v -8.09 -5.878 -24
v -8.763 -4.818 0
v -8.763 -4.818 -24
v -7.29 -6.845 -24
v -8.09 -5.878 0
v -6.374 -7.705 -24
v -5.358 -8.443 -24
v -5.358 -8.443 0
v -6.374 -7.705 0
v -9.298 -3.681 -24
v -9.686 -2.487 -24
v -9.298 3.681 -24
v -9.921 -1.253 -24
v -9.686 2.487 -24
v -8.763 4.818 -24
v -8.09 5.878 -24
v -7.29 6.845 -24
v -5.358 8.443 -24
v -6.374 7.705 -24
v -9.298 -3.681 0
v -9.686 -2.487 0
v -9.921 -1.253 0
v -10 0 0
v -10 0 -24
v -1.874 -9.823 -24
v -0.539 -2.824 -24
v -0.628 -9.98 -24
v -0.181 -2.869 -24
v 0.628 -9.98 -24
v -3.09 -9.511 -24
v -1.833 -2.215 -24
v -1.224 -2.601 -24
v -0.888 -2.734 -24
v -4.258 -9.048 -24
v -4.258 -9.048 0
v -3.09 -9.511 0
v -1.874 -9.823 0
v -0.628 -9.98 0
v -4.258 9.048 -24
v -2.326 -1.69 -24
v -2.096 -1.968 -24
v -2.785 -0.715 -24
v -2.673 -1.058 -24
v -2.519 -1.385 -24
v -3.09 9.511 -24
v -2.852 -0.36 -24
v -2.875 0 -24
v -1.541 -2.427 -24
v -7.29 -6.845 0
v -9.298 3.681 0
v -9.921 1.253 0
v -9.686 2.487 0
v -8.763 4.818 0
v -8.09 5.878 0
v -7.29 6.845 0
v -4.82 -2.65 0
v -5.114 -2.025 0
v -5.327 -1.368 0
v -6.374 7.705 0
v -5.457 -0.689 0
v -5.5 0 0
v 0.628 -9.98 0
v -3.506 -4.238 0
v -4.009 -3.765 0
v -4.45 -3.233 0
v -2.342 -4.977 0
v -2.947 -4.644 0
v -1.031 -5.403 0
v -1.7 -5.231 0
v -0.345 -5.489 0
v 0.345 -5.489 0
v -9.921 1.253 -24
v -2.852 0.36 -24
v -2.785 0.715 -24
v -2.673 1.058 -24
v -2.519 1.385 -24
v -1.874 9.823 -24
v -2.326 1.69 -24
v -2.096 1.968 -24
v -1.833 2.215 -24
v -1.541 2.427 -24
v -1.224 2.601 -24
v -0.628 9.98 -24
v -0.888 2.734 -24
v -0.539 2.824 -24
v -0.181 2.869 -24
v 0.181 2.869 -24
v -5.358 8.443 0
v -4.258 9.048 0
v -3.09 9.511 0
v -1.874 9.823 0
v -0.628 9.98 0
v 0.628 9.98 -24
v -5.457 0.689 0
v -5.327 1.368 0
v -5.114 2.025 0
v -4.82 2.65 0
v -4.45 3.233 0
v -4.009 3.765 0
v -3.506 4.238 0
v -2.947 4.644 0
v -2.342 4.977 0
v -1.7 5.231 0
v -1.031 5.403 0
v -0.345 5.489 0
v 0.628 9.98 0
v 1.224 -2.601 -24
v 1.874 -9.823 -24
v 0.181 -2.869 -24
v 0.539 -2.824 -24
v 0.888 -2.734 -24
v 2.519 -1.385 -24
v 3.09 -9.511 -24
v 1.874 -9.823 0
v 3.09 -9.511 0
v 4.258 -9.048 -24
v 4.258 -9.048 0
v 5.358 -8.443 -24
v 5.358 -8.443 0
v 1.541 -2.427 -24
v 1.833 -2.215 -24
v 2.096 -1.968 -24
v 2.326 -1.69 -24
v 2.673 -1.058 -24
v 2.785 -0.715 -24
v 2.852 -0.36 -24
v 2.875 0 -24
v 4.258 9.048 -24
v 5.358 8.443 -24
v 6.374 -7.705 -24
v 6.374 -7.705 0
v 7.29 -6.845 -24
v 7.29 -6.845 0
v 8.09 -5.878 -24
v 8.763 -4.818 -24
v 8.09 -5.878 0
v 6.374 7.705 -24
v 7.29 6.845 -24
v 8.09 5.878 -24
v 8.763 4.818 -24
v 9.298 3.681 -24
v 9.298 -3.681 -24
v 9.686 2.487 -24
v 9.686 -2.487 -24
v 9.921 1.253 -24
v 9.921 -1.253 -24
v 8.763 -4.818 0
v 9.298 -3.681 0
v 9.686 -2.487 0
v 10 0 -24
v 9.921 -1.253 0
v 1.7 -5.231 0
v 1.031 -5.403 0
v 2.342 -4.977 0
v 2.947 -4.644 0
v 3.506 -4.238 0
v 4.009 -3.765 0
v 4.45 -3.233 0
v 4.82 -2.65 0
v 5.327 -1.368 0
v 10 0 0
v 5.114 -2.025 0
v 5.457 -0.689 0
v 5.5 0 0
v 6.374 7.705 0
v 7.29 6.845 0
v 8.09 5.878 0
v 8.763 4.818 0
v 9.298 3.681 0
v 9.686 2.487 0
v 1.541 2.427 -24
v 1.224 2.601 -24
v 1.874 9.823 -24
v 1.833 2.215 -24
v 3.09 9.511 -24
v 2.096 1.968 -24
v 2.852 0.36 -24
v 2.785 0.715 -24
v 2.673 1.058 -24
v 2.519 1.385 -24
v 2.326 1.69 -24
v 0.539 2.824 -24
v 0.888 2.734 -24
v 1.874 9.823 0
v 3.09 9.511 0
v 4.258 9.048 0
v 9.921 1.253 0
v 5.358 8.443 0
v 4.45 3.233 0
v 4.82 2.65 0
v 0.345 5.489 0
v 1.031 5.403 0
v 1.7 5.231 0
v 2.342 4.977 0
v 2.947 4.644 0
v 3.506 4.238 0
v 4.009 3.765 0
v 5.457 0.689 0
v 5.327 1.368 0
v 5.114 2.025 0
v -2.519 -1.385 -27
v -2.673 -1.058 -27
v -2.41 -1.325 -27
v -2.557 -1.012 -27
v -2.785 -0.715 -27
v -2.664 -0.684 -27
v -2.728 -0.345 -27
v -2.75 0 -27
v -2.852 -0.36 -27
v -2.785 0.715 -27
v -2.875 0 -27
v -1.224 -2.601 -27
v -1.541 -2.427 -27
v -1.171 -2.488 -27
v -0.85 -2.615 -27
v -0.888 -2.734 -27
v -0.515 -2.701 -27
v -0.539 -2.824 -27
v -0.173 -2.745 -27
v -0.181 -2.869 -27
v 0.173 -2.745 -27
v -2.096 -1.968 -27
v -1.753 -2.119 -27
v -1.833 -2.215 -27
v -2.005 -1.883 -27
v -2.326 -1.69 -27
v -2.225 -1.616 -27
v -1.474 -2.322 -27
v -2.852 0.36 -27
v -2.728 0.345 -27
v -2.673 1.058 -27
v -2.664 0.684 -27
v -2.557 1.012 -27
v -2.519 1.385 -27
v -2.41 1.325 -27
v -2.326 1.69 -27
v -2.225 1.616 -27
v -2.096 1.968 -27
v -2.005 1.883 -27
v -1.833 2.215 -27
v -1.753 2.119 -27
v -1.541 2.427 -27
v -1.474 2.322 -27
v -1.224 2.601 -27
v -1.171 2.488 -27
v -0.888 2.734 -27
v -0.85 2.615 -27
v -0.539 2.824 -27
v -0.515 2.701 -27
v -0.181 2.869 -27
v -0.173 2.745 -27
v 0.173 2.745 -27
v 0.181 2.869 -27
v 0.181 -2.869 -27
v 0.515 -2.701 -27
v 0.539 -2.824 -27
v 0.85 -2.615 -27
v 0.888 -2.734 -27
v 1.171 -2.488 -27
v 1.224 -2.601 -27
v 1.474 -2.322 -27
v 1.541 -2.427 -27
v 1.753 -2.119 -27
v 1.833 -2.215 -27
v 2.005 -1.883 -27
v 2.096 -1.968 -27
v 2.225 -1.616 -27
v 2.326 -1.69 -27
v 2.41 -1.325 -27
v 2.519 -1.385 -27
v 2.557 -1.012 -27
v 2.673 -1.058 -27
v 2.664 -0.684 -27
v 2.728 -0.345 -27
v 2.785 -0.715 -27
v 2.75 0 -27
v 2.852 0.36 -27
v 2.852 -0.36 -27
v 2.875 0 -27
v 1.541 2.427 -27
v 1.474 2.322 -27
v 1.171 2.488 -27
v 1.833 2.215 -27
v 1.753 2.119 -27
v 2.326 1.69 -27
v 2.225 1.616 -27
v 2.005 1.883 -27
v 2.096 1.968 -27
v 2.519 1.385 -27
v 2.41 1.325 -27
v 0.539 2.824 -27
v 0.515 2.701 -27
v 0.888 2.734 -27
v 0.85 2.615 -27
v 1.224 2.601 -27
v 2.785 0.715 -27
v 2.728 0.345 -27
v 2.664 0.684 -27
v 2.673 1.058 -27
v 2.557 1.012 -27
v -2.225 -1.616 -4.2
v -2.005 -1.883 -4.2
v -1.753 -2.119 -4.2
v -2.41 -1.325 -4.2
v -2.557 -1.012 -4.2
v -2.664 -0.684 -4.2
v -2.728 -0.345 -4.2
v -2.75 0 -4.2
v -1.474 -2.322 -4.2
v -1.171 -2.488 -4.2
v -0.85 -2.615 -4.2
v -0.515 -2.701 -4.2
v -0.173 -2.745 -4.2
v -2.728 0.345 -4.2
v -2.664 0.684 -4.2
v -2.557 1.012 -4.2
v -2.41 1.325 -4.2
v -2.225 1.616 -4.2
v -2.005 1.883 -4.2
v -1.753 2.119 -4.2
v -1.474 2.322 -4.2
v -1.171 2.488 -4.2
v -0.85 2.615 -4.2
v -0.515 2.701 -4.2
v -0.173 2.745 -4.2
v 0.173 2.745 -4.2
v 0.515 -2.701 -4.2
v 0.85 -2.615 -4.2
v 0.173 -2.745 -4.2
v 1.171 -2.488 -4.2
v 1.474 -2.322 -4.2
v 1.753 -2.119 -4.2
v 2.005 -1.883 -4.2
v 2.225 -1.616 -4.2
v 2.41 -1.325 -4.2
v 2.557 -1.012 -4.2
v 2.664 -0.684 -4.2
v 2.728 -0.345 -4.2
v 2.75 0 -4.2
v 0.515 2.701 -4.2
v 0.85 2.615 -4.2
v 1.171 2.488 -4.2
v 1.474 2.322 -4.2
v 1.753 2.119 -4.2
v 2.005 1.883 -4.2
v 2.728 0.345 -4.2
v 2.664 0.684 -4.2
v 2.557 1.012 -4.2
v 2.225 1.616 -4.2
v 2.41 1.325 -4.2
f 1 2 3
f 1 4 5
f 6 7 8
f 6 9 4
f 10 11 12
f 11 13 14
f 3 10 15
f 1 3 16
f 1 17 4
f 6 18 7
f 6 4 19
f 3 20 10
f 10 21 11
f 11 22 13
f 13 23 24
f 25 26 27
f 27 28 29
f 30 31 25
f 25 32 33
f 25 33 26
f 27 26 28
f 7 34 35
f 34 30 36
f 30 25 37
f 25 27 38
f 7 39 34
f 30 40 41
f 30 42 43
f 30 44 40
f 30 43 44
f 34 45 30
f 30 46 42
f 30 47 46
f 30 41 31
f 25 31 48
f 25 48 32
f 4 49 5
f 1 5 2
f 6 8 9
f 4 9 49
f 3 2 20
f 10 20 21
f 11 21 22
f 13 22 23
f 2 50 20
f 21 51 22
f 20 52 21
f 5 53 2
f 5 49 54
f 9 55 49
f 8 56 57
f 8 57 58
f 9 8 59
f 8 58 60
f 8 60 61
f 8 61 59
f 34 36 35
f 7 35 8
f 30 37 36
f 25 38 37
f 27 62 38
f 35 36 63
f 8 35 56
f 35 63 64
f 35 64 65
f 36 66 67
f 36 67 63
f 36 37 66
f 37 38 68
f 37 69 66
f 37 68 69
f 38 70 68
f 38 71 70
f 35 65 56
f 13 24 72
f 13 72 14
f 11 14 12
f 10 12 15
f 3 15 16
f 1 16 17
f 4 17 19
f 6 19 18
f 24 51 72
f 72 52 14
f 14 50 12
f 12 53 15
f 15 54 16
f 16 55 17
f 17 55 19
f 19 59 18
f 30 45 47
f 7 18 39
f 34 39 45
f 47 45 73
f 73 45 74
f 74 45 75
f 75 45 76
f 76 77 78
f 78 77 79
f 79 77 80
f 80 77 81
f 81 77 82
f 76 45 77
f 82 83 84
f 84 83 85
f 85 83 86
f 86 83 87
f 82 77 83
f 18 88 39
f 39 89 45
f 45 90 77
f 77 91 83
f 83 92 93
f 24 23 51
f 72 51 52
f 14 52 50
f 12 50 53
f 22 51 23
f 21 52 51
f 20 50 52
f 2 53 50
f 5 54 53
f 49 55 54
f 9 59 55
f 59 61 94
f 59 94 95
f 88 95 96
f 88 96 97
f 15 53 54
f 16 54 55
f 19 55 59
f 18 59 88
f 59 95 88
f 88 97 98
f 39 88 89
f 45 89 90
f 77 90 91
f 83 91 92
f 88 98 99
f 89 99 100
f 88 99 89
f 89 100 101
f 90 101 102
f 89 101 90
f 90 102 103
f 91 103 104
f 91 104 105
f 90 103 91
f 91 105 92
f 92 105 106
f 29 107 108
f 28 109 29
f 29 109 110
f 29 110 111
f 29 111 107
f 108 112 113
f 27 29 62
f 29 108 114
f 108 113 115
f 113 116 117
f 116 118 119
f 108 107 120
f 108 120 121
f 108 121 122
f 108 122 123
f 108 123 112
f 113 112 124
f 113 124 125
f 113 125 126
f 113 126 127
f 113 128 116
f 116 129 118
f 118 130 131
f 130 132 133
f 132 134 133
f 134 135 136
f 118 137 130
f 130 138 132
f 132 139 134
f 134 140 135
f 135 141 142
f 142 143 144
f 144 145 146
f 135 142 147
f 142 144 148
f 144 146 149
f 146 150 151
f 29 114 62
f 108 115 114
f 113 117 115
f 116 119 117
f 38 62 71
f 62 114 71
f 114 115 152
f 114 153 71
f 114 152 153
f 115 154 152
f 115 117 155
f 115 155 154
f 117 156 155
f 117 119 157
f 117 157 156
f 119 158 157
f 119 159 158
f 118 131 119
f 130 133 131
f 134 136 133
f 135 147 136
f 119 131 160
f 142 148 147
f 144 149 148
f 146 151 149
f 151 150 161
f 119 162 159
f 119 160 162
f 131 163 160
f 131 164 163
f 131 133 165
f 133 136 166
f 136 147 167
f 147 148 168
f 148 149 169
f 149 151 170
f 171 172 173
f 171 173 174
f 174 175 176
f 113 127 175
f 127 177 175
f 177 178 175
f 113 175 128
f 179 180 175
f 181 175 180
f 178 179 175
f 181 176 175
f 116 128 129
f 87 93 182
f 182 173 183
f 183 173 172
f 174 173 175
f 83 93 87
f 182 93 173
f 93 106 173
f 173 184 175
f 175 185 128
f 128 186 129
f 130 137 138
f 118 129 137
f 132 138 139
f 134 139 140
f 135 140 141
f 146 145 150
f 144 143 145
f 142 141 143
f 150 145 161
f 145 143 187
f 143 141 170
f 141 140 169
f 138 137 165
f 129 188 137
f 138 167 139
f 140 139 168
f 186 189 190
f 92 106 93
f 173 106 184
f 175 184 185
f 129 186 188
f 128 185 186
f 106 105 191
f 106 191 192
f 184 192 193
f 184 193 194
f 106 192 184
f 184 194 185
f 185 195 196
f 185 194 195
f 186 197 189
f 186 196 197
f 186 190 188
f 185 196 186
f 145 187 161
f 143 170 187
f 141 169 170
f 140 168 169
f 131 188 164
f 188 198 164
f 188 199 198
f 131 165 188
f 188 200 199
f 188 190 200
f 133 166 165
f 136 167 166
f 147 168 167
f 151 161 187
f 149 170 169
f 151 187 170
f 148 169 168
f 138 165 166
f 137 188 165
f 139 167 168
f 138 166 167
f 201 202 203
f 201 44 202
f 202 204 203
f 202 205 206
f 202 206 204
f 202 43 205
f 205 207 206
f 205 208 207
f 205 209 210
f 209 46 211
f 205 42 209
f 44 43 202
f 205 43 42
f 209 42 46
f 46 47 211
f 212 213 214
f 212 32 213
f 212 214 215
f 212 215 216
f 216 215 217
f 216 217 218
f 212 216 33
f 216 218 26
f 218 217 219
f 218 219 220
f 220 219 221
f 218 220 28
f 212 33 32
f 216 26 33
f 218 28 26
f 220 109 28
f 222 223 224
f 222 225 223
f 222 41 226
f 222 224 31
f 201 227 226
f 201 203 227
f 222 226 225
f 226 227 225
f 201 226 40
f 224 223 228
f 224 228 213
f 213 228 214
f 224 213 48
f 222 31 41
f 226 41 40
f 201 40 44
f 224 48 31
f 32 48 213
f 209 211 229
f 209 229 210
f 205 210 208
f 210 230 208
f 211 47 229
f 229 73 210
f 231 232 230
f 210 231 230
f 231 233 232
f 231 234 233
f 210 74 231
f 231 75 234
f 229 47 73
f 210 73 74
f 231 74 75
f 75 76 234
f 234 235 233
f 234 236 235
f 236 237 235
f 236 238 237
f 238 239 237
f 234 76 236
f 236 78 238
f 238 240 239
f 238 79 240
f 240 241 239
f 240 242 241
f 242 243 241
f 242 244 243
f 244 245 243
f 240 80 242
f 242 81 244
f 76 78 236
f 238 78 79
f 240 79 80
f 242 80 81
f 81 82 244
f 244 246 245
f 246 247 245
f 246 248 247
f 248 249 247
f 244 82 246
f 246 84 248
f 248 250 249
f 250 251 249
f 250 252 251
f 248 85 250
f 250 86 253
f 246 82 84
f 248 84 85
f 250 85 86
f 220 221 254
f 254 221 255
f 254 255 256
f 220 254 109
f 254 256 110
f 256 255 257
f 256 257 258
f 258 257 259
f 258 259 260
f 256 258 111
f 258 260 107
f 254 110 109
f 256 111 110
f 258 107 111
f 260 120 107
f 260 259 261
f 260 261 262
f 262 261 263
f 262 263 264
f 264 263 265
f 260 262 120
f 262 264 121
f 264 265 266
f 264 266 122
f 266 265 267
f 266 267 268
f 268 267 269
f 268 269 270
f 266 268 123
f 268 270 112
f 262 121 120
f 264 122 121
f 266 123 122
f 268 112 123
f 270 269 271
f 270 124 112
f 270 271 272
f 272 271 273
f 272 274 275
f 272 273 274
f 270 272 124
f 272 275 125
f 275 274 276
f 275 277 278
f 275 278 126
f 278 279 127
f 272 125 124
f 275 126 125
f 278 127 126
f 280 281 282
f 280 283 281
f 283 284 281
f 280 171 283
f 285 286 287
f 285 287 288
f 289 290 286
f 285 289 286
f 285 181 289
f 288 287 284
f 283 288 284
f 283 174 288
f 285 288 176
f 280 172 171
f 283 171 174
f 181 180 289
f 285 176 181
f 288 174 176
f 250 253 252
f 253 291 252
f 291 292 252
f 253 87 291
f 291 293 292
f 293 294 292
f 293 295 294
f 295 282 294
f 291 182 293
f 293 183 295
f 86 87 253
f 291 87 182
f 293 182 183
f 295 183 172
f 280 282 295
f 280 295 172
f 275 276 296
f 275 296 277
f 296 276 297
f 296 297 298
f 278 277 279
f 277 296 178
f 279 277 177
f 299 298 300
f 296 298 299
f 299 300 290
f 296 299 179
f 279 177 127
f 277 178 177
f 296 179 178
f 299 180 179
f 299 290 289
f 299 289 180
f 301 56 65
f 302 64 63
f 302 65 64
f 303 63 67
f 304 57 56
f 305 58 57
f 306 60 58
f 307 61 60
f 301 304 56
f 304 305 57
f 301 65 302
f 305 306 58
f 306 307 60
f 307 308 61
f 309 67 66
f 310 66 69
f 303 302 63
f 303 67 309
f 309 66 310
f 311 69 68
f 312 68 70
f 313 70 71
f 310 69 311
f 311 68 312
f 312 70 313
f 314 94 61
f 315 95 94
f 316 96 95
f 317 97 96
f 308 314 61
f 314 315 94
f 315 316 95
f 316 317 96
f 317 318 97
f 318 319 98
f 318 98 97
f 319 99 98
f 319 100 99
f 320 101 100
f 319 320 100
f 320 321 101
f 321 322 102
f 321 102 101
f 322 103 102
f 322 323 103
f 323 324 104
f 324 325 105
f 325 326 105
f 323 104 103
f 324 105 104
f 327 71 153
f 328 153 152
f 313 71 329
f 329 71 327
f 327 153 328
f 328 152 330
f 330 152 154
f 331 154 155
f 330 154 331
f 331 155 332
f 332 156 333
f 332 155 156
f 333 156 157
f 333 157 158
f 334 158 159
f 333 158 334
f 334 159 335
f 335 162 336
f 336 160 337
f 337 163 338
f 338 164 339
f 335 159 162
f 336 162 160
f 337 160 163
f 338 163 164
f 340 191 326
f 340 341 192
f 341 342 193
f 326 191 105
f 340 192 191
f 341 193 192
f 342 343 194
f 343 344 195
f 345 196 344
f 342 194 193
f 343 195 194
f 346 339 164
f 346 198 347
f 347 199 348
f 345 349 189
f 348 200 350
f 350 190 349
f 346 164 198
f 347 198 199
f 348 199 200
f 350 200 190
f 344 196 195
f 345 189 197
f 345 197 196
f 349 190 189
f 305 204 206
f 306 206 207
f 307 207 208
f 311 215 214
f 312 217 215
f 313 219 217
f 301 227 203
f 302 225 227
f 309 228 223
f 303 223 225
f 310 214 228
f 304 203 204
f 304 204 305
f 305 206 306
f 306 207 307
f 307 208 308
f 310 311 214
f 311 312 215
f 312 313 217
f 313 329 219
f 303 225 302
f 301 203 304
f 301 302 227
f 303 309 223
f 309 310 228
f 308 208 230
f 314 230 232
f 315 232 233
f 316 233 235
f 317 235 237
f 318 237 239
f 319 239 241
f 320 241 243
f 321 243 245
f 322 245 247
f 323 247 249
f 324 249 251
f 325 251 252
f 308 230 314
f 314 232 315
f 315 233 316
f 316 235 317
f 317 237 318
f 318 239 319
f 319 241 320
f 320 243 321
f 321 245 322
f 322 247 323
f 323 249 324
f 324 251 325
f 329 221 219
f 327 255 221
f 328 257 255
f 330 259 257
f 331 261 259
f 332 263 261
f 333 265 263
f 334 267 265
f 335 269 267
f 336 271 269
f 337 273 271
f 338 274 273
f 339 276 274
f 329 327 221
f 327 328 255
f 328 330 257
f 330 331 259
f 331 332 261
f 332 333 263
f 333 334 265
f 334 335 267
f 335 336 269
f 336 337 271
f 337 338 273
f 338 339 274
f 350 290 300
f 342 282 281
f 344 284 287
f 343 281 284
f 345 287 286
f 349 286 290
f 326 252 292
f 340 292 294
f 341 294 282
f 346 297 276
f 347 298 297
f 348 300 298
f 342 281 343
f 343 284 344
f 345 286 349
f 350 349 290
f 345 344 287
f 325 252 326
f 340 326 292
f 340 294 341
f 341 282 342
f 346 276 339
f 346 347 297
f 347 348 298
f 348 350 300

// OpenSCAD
$fn = 50;


difference() {
	union() {
		translate(v = [0, 0, -24.0000000000]) {
			cylinder(h = 24, r = 10.0000000000);
		}
		#translate(v = [0, 0, -27.0000000000]) {
			cylinder(h = 27, r = 2.8750000000);
		}
	}
	union() {
		translate(v = [0, 0, 0]) {
			rotate(a = [0, 0, 0]) {
				difference() {
					union() {
						translate(v = [0, 0, -27.0000000000]) {
							cylinder(h = 27, r = 2.2500000000);
						}
						translate(v = [0, 0, -4.2000000000]) {
							cylinder(h = 4.2000000000, r1 = 2.7500000000, r2 = 5.5000000000);
						}
						translate(v = [0, 0, -27.0000000000]) {
							cylinder(h = 27, r = 2.7500000000);
						}
						translate(v = [0, 0, -27.0000000000]) {
							cylinder(h = 27, r = 2.2500000000);
						}
					}
					union();
				}
			}
		}
	}
}
